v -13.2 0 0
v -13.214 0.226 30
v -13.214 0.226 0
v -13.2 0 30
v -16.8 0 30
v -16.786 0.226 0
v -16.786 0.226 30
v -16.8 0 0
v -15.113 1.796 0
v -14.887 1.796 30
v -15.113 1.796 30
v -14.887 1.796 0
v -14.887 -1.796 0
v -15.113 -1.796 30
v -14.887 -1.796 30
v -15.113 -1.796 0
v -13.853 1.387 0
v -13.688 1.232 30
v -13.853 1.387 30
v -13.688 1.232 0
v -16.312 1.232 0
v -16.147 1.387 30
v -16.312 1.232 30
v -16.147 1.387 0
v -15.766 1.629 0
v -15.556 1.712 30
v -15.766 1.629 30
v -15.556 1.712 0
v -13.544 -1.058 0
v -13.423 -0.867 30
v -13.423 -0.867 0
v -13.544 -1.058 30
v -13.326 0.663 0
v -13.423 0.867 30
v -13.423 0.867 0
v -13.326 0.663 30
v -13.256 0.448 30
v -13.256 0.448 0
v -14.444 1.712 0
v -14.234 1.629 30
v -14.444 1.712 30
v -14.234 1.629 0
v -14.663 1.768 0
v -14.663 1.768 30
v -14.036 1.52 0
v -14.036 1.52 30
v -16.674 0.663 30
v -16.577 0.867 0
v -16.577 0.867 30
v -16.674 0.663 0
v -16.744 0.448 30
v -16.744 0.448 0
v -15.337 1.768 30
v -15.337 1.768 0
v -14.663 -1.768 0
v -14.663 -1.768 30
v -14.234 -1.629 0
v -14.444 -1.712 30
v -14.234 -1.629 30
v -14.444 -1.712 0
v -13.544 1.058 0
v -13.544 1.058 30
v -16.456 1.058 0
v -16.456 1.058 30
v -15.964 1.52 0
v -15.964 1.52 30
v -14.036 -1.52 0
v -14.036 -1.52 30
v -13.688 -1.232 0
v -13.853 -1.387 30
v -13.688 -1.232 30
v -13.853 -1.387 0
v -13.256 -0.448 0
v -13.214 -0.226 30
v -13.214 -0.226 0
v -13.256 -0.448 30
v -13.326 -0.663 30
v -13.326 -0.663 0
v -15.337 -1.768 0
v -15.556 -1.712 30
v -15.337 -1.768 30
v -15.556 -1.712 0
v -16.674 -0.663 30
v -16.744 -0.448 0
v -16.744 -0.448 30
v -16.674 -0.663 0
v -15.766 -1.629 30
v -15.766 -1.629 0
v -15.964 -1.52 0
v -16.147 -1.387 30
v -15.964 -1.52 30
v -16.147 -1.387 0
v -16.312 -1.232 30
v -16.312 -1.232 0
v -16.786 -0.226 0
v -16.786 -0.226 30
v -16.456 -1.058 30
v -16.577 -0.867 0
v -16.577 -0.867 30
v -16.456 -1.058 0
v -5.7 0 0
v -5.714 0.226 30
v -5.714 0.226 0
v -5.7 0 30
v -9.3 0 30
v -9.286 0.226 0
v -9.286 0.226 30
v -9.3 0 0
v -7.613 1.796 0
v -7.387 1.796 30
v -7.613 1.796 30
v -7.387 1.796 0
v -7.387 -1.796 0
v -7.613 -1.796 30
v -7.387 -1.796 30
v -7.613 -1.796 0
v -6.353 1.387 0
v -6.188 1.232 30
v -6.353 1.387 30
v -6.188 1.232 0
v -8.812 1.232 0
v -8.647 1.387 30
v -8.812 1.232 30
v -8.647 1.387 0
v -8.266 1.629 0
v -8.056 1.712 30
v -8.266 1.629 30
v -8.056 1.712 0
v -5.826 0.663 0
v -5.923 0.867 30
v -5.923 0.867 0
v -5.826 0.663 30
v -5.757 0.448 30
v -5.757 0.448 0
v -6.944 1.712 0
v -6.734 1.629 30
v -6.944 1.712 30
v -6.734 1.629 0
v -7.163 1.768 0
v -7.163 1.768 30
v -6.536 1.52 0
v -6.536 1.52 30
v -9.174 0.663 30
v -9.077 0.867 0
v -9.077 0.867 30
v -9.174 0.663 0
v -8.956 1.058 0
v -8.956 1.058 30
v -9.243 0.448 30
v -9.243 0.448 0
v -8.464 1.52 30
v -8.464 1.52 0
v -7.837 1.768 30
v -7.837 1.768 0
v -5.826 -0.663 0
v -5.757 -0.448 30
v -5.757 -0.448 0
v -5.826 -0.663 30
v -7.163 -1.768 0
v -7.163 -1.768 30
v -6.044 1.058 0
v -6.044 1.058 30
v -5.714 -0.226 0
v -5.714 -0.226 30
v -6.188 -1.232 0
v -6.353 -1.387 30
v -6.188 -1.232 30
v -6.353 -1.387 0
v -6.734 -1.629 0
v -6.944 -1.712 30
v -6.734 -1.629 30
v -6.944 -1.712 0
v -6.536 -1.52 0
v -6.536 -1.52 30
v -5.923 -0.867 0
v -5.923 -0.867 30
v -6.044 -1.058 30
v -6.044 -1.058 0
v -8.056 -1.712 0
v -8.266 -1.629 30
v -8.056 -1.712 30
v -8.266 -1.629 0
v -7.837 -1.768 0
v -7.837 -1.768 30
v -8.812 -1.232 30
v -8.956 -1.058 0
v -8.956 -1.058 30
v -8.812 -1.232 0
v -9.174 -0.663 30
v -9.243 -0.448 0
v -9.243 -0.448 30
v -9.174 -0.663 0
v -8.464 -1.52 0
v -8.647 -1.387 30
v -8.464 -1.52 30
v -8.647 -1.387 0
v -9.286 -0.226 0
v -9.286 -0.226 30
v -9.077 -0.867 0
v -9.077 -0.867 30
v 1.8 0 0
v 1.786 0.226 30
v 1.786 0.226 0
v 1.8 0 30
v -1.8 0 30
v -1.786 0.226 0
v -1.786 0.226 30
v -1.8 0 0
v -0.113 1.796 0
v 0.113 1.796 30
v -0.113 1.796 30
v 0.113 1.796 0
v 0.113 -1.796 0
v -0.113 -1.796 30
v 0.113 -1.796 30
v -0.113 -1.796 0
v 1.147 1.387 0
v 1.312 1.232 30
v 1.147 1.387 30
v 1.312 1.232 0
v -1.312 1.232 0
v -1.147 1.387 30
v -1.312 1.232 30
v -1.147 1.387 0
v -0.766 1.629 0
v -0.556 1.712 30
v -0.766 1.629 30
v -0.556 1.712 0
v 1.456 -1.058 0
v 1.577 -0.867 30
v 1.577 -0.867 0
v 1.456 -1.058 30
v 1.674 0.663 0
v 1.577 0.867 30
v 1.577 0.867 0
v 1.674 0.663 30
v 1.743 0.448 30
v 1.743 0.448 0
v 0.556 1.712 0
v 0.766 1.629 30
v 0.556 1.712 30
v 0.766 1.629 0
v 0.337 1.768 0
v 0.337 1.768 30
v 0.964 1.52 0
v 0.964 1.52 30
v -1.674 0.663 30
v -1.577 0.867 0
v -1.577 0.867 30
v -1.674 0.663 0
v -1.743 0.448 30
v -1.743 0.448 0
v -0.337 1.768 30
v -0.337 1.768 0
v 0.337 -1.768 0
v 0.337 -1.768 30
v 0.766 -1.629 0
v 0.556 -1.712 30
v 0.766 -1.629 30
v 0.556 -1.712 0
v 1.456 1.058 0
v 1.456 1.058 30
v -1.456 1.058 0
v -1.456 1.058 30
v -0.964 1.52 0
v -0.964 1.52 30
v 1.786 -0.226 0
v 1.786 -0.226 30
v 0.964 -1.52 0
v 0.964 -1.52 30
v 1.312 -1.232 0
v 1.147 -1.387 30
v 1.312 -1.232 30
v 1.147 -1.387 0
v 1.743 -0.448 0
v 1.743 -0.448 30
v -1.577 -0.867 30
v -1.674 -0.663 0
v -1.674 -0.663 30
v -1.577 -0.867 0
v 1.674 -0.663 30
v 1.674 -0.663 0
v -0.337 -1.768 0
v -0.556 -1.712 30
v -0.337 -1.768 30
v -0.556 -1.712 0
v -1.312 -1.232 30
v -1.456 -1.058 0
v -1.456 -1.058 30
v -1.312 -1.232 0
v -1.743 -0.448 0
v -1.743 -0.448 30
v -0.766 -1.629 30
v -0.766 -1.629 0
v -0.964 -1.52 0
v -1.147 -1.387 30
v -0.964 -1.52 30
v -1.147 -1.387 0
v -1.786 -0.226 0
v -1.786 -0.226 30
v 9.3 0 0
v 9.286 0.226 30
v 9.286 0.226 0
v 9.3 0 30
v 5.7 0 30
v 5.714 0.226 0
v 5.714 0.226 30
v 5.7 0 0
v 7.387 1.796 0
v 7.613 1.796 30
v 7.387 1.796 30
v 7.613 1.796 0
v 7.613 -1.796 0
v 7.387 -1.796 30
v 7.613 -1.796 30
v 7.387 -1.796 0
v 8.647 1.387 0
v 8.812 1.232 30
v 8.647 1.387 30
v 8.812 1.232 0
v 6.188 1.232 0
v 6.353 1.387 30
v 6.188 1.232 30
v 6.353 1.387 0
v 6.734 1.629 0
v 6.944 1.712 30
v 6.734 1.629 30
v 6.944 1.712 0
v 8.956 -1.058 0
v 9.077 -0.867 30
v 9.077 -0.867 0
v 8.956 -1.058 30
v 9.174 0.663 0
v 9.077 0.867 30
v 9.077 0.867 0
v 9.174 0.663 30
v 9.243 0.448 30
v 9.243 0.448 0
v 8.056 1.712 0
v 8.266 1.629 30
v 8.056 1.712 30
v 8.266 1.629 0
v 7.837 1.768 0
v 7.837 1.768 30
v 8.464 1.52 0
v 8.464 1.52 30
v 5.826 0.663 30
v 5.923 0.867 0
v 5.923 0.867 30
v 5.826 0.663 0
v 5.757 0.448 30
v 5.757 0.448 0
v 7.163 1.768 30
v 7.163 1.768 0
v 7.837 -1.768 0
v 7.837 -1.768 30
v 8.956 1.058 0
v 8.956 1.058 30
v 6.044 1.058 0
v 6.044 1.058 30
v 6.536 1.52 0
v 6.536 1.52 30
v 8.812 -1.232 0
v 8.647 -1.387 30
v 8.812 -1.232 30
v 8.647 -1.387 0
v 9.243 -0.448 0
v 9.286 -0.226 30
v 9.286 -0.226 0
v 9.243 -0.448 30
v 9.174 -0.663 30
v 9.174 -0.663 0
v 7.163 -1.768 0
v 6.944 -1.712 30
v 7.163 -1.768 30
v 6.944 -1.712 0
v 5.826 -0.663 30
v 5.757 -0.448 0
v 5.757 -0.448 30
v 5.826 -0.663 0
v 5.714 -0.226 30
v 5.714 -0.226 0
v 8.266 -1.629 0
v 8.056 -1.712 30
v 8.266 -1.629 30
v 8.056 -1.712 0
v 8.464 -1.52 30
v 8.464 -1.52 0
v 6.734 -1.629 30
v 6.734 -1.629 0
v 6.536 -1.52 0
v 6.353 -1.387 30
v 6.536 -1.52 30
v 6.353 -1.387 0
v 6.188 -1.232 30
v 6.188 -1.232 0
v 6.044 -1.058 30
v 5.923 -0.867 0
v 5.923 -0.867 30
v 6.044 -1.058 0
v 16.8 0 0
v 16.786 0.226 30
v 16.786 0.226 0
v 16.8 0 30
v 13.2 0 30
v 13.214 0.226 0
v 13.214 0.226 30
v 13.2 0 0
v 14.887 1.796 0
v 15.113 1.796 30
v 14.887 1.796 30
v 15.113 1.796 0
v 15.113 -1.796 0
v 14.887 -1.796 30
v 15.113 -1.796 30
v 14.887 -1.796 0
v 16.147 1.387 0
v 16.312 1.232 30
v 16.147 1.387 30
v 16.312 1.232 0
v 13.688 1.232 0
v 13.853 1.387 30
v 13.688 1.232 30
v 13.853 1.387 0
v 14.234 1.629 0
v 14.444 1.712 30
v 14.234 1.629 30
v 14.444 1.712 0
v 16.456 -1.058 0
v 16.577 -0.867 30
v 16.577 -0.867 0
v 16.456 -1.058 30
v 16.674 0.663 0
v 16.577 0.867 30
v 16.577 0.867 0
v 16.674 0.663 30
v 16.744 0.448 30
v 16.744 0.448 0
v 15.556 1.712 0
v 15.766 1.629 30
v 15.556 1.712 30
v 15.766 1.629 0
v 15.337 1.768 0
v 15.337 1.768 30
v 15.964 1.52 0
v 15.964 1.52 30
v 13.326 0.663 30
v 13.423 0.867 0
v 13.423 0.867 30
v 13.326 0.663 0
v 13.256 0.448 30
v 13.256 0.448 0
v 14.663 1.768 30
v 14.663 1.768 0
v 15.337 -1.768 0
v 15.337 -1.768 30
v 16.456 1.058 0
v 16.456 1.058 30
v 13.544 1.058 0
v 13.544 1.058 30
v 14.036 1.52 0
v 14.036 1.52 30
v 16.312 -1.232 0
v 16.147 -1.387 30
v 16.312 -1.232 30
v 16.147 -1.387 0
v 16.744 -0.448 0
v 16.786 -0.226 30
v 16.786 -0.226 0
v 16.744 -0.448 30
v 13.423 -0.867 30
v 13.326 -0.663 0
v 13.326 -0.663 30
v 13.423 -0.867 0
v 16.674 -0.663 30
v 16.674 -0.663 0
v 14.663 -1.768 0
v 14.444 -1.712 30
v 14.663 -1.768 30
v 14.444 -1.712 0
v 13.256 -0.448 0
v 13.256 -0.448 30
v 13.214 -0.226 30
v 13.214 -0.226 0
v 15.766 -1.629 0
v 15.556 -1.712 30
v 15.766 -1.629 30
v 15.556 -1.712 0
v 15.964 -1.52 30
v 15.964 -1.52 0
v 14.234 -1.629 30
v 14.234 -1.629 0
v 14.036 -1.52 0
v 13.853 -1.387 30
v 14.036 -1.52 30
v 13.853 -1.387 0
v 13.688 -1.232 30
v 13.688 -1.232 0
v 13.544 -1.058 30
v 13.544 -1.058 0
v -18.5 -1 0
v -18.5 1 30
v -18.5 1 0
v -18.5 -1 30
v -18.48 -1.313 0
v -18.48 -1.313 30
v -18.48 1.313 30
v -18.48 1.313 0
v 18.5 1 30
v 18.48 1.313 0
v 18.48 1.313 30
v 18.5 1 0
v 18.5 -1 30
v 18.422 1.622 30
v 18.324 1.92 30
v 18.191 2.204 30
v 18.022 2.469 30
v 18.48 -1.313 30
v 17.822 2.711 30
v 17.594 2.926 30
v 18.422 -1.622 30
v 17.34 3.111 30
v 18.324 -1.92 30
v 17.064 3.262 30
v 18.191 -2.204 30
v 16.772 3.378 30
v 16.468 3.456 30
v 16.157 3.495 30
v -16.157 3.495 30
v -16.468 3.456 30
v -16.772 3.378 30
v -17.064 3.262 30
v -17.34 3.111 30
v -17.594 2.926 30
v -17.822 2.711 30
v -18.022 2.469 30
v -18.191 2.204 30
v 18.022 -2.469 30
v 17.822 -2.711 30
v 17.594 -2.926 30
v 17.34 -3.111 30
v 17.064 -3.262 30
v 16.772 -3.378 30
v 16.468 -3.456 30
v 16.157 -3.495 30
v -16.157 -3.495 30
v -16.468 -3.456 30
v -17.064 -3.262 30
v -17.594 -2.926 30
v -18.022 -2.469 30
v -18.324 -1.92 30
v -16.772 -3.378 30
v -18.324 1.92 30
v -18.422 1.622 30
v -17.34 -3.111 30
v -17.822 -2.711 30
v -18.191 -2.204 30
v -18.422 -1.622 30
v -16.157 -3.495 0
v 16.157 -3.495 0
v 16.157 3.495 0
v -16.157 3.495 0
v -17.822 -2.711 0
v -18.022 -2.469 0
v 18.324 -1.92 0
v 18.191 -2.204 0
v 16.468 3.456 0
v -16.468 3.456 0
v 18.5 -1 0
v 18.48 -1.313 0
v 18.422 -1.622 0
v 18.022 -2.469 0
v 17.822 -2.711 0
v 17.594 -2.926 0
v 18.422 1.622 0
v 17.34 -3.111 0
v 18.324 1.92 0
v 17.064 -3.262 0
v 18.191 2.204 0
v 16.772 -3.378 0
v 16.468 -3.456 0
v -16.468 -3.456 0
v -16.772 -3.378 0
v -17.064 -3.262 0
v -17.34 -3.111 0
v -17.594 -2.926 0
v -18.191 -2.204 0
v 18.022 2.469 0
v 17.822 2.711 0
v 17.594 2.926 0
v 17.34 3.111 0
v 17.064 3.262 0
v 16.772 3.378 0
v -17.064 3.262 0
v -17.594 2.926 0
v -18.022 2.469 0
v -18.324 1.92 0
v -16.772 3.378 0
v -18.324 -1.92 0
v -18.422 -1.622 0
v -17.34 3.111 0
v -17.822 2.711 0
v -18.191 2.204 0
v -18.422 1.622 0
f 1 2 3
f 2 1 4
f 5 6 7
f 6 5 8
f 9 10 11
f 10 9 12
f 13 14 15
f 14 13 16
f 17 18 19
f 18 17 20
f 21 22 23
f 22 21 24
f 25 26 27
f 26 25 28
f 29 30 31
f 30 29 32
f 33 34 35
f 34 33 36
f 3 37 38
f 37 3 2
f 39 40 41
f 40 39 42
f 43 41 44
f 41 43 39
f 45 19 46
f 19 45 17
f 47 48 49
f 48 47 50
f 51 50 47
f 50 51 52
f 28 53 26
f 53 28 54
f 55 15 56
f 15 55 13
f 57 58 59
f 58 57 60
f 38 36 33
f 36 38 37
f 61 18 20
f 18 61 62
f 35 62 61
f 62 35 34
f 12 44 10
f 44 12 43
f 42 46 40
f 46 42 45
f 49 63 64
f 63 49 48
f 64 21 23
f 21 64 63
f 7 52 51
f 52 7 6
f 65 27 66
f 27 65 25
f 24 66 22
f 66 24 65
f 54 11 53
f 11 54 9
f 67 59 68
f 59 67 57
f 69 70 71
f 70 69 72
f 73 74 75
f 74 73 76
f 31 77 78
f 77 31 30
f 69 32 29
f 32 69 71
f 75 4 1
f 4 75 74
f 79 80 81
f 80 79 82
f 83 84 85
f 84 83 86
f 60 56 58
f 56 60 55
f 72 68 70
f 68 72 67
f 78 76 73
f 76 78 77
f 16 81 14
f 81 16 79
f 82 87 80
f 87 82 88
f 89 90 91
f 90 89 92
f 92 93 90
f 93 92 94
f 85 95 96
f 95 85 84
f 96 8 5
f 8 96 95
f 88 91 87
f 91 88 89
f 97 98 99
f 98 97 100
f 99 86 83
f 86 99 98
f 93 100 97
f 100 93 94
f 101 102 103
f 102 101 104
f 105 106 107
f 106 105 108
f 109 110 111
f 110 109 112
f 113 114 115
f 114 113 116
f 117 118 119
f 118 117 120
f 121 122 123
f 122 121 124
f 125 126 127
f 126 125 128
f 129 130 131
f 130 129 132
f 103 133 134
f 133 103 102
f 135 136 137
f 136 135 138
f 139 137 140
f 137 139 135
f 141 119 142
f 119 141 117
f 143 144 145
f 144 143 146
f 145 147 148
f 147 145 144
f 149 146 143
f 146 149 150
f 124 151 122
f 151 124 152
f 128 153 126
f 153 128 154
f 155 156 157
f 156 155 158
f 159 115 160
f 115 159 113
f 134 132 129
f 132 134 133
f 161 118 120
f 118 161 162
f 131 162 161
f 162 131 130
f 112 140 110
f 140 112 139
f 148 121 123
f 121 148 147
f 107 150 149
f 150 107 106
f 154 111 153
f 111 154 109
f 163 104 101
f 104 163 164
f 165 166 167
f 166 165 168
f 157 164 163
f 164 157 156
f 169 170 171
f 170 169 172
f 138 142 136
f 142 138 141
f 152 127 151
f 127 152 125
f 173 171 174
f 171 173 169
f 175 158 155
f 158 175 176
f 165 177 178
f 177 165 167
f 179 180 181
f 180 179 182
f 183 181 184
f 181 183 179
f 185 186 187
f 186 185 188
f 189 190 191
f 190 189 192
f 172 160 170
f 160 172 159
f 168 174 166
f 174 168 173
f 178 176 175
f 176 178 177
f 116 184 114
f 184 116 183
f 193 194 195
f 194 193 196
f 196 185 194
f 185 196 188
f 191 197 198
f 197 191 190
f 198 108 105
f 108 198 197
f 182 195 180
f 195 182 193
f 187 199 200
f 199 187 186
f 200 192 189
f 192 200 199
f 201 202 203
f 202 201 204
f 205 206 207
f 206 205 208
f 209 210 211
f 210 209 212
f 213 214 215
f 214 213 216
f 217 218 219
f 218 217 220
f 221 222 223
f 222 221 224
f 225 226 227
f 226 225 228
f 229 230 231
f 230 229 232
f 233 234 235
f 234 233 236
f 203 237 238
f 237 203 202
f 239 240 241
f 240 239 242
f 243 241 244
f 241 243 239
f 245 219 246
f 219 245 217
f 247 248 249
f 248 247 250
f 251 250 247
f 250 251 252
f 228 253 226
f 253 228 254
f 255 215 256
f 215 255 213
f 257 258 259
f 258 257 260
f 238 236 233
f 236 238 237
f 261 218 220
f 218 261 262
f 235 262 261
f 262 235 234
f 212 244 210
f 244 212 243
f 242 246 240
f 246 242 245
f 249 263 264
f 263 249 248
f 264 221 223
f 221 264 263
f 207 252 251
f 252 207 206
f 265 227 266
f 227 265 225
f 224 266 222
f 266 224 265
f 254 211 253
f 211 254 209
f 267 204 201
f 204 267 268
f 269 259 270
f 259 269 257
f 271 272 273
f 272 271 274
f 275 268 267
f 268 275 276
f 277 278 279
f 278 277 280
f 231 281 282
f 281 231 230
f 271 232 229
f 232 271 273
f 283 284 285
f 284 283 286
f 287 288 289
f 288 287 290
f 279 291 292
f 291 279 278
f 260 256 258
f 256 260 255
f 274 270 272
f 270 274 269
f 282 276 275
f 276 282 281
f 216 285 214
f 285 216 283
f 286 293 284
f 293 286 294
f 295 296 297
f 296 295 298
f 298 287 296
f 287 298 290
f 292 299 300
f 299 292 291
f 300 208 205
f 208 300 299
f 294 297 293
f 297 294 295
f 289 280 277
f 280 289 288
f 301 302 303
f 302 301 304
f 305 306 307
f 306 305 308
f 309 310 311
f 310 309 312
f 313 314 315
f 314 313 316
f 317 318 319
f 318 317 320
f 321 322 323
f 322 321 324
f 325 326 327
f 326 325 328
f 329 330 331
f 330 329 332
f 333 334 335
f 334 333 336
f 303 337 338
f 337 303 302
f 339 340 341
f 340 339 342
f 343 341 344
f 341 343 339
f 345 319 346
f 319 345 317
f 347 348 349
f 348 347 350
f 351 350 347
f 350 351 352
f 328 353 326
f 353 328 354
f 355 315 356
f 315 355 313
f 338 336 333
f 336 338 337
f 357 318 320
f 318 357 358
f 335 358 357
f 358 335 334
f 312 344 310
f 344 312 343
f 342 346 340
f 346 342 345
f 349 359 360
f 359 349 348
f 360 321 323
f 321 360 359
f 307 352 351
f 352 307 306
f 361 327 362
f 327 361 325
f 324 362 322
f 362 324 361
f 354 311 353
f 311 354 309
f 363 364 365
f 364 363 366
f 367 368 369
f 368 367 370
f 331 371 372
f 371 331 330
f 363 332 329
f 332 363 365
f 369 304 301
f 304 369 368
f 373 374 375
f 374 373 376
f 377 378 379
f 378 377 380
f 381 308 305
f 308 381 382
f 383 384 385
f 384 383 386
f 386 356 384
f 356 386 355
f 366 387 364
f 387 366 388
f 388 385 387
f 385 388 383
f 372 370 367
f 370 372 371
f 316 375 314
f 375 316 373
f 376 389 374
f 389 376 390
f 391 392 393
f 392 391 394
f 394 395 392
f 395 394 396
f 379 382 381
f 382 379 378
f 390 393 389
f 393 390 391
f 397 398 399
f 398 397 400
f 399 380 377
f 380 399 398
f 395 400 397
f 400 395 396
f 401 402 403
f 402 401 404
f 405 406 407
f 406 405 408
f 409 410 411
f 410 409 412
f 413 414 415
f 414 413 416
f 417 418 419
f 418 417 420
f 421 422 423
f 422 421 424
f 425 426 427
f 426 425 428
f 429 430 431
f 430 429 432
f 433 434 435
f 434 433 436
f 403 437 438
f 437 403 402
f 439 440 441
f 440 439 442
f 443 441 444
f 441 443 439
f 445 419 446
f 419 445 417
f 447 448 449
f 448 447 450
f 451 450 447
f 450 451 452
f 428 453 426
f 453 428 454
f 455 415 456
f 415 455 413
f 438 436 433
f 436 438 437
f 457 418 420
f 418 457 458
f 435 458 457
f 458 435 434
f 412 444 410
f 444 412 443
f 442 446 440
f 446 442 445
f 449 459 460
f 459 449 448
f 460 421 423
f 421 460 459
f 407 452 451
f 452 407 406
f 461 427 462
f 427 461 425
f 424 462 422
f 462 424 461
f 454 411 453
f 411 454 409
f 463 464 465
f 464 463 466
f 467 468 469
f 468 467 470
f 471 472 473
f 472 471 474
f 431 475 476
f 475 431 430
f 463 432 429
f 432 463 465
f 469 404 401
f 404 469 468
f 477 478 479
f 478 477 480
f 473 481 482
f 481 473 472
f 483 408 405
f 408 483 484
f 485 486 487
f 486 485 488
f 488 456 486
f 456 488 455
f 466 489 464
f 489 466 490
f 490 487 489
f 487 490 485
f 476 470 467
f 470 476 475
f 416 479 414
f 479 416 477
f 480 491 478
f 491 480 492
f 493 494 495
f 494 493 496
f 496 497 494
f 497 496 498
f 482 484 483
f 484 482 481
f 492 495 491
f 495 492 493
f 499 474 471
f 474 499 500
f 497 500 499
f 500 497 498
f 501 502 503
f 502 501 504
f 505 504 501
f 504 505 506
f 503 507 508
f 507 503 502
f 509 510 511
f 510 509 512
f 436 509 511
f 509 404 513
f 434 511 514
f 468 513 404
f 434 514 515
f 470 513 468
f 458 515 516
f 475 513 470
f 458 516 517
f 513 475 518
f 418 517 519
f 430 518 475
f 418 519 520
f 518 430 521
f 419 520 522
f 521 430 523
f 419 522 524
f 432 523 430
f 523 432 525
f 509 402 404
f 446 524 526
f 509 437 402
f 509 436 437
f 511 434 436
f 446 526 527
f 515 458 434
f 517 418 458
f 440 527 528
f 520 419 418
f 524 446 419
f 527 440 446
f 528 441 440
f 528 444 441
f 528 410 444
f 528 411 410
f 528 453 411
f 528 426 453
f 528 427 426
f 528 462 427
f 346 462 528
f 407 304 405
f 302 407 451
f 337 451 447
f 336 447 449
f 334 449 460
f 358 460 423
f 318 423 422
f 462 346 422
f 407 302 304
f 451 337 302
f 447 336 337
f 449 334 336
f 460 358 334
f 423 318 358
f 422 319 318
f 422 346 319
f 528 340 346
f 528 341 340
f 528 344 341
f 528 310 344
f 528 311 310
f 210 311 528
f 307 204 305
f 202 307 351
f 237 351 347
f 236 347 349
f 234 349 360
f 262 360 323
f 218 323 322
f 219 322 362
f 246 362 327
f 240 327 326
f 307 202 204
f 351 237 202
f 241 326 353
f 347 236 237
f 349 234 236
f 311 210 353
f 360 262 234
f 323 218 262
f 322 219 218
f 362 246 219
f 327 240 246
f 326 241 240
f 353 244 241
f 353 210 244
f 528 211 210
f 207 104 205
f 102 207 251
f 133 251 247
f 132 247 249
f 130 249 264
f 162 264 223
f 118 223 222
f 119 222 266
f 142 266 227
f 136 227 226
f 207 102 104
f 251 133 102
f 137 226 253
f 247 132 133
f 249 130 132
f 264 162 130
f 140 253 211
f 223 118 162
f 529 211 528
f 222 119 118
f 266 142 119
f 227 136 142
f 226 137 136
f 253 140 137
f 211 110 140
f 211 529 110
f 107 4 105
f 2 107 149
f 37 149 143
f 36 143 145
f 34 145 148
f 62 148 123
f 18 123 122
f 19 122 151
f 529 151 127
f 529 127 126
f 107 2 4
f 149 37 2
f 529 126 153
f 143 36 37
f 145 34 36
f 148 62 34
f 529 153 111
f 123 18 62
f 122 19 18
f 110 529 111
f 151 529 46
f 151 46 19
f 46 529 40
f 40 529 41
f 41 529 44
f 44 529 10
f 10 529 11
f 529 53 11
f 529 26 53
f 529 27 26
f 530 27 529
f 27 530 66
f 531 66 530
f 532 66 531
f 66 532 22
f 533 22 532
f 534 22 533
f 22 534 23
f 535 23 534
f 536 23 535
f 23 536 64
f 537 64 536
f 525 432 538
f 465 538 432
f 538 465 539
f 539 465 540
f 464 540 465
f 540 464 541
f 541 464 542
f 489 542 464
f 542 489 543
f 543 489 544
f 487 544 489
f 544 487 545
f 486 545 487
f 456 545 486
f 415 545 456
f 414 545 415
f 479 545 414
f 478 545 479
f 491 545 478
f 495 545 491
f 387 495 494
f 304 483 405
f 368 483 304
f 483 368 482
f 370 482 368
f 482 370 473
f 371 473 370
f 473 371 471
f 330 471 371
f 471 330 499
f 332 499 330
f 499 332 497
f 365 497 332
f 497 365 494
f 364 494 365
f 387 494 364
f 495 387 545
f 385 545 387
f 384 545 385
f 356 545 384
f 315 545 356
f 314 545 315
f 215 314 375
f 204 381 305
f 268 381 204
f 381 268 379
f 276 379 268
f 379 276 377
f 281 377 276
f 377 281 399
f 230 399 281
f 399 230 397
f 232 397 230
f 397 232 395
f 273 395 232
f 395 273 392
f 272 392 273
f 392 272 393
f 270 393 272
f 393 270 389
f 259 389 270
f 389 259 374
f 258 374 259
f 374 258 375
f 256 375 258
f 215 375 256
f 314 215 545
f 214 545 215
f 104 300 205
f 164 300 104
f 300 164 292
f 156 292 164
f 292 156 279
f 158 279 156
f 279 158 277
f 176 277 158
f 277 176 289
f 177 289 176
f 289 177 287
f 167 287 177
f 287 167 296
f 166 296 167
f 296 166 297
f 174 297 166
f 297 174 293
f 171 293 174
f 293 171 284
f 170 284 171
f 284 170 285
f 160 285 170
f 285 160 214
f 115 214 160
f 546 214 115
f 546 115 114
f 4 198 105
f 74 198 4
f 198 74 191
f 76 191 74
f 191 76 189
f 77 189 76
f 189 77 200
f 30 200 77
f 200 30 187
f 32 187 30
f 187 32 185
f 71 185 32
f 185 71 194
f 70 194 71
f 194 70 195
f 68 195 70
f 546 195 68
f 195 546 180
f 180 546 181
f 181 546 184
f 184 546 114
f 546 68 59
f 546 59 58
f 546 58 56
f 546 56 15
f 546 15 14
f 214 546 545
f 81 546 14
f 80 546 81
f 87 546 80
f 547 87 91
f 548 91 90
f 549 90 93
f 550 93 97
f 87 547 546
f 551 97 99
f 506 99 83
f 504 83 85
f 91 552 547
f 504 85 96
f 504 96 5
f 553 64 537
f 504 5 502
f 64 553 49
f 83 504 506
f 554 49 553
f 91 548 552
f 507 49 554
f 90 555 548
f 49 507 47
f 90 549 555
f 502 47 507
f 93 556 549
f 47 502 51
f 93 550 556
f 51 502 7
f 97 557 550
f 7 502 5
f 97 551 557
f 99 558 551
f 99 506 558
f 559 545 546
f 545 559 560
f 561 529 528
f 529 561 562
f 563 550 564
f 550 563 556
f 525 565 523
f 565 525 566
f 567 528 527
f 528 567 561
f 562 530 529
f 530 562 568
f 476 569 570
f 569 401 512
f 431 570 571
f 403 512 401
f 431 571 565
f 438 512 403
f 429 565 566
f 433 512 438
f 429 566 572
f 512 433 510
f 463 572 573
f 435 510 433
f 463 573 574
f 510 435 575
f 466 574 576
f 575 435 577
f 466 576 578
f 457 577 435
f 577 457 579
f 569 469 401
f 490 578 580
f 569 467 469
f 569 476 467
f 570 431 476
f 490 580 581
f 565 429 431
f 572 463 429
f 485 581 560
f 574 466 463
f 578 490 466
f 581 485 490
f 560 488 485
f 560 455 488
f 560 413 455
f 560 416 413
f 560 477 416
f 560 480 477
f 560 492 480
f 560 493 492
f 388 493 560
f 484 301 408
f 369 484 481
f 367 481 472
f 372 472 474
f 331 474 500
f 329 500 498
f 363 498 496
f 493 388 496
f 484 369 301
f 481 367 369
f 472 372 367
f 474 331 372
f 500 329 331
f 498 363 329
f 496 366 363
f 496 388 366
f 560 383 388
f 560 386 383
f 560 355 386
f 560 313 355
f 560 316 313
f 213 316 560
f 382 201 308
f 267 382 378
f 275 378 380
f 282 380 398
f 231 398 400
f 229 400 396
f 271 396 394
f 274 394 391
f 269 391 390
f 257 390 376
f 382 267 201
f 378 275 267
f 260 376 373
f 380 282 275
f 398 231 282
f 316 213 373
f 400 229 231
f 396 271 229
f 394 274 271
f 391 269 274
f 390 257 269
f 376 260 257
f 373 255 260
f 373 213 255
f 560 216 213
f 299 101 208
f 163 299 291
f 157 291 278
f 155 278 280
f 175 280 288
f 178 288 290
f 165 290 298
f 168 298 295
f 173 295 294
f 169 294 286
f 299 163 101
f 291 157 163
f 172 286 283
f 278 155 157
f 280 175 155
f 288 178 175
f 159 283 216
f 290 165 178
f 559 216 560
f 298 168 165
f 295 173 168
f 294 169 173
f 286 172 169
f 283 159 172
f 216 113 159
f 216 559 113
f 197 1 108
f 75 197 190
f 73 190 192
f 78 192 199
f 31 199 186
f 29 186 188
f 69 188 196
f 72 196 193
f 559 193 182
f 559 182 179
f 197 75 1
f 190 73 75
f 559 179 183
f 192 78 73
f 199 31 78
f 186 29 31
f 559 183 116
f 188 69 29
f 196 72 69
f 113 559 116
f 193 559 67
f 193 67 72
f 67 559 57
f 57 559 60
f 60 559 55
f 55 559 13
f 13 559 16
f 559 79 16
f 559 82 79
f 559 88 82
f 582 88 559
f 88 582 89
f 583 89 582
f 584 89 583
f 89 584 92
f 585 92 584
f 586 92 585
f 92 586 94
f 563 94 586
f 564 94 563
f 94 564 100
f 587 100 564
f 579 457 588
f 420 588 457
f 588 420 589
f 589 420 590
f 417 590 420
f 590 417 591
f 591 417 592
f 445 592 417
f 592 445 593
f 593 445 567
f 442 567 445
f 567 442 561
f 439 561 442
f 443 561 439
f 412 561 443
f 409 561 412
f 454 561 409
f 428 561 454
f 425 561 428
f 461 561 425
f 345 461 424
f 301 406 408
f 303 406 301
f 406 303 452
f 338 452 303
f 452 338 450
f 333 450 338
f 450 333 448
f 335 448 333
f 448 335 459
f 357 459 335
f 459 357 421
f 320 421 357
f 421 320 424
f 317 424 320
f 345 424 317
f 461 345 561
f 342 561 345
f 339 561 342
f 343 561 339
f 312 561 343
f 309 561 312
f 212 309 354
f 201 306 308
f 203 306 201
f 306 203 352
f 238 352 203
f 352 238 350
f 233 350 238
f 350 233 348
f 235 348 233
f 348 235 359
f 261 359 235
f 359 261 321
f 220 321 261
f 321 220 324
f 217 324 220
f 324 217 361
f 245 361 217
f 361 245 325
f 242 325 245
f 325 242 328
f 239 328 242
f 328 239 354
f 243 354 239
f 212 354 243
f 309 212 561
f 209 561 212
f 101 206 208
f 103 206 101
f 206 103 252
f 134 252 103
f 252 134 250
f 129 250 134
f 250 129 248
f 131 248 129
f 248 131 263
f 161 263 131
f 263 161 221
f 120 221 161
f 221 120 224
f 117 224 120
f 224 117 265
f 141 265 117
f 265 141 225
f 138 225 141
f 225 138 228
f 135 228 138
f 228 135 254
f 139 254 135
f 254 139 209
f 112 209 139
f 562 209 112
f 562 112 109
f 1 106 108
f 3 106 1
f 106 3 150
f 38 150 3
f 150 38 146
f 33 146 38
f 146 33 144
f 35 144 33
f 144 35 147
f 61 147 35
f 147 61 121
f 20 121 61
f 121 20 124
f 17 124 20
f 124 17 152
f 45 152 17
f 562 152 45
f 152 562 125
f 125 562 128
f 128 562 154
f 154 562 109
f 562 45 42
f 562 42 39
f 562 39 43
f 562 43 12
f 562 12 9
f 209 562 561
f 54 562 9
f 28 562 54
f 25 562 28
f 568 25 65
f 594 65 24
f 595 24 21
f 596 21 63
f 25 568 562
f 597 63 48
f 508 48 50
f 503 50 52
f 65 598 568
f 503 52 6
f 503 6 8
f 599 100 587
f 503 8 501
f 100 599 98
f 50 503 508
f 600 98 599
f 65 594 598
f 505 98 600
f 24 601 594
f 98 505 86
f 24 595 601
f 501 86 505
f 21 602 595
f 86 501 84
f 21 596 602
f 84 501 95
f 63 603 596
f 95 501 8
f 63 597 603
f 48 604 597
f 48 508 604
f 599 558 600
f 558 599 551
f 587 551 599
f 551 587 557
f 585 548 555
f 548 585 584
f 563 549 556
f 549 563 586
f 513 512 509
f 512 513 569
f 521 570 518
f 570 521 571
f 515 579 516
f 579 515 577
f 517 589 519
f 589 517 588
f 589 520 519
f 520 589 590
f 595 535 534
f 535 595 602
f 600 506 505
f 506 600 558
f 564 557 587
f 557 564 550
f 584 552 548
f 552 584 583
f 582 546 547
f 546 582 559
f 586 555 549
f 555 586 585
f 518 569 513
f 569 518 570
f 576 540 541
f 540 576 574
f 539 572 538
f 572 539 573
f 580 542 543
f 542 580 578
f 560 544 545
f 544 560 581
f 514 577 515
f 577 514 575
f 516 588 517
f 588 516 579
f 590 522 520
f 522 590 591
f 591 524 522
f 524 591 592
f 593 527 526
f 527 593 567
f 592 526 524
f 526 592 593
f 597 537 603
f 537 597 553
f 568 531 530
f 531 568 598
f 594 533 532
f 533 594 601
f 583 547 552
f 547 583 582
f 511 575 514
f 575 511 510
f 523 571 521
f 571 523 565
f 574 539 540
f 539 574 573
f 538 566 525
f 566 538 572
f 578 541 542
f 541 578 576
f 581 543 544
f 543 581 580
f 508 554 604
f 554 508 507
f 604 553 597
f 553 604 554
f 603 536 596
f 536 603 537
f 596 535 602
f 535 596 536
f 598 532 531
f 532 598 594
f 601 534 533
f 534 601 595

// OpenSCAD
$fn = 50;


difference() {
	union() {
		translate(v = [0, 0, 0]) {
			rotate(a = [0, 0, 0]) {
				hull() {
					translate(v = [-16.0000000000, 1.0000000000, 0]) {
						rotate(a = [0, 0, 0]) {
							translate(v = [0, 0, 0]) {
								rotate(a = [0, 0, 0]) {
									cylinder(h = 30, r = 2.5000000000);
								}
							}
						}
					}
					translate(v = [16.0000000000, 1.0000000000, 0]) {
						rotate(a = [0, 0, 0]) {
							translate(v = [0, 0, 0]) {
								rotate(a = [0, 0, 0]) {
									cylinder(h = 30, r = 2.5000000000);
								}
							}
						}
					}
					translate(v = [-16.0000000000, -1.0000000000, 0]) {
						rotate(a = [0, 0, 0]) {
							translate(v = [0, 0, 0]) {
								rotate(a = [0, 0, 0]) {
									cylinder(h = 30, r = 2.5000000000);
								}
							}
						}
					}
					translate(v = [16.0000000000, -1.0000000000, 0]) {
						rotate(a = [0, 0, 0]) {
							translate(v = [0, 0, 0]) {
								rotate(a = [0, 0, 0]) {
									cylinder(h = 30, r = 2.5000000000);
								}
							}
						}
					}
				}
			}
		}
	}
	union() {
		translate(v = [-15.0000000000, 0.0000000000, 0]) {
			rotate(a = [0, 0, 0]) {
				translate(v = [0, 0, -50]) {
					rotate(a = [0, 0, 0]) {
						cylinder(h = 100, r = 1.8000000000);
					}
				}
			}
		}
		translate(v = [-7.5000000000, 0.0000000000, 0]) {
			rotate(a = [0, 0, 0]) {
				translate(v = [0, 0, -50]) {
					rotate(a = [0, 0, 0]) {
						cylinder(h = 100, r = 1.8000000000);
					}
				}
			}
		}
		translate(v = [0.0000000000, 0.0000000000, 0]) {
			rotate(a = [0, 0, 0]) {
				translate(v = [0, 0, -50]) {
					rotate(a = [0, 0, 0]) {
						cylinder(h = 100, r = 1.8000000000);
					}
				}
			}
		}
		translate(v = [7.5000000000, 0.0000000000, 0]) {
			rotate(a = [0, 0, 0]) {
				translate(v = [0, 0, -50]) {
					rotate(a = [0, 0, 0]) {
						cylinder(h = 100, r = 1.8000000000);
					}
				}
			}
		}
		translate(v = [15.0000000000, 0.0000000000, 0]) {
			rotate(a = [0, 0, 0]) {
				translate(v = [0, 0, -50]) {
					rotate(a = [0, 0, 0]) {
						cylinder(h = 100, r = 1.8000000000);
					}
				}
			}
		}
	}
}
